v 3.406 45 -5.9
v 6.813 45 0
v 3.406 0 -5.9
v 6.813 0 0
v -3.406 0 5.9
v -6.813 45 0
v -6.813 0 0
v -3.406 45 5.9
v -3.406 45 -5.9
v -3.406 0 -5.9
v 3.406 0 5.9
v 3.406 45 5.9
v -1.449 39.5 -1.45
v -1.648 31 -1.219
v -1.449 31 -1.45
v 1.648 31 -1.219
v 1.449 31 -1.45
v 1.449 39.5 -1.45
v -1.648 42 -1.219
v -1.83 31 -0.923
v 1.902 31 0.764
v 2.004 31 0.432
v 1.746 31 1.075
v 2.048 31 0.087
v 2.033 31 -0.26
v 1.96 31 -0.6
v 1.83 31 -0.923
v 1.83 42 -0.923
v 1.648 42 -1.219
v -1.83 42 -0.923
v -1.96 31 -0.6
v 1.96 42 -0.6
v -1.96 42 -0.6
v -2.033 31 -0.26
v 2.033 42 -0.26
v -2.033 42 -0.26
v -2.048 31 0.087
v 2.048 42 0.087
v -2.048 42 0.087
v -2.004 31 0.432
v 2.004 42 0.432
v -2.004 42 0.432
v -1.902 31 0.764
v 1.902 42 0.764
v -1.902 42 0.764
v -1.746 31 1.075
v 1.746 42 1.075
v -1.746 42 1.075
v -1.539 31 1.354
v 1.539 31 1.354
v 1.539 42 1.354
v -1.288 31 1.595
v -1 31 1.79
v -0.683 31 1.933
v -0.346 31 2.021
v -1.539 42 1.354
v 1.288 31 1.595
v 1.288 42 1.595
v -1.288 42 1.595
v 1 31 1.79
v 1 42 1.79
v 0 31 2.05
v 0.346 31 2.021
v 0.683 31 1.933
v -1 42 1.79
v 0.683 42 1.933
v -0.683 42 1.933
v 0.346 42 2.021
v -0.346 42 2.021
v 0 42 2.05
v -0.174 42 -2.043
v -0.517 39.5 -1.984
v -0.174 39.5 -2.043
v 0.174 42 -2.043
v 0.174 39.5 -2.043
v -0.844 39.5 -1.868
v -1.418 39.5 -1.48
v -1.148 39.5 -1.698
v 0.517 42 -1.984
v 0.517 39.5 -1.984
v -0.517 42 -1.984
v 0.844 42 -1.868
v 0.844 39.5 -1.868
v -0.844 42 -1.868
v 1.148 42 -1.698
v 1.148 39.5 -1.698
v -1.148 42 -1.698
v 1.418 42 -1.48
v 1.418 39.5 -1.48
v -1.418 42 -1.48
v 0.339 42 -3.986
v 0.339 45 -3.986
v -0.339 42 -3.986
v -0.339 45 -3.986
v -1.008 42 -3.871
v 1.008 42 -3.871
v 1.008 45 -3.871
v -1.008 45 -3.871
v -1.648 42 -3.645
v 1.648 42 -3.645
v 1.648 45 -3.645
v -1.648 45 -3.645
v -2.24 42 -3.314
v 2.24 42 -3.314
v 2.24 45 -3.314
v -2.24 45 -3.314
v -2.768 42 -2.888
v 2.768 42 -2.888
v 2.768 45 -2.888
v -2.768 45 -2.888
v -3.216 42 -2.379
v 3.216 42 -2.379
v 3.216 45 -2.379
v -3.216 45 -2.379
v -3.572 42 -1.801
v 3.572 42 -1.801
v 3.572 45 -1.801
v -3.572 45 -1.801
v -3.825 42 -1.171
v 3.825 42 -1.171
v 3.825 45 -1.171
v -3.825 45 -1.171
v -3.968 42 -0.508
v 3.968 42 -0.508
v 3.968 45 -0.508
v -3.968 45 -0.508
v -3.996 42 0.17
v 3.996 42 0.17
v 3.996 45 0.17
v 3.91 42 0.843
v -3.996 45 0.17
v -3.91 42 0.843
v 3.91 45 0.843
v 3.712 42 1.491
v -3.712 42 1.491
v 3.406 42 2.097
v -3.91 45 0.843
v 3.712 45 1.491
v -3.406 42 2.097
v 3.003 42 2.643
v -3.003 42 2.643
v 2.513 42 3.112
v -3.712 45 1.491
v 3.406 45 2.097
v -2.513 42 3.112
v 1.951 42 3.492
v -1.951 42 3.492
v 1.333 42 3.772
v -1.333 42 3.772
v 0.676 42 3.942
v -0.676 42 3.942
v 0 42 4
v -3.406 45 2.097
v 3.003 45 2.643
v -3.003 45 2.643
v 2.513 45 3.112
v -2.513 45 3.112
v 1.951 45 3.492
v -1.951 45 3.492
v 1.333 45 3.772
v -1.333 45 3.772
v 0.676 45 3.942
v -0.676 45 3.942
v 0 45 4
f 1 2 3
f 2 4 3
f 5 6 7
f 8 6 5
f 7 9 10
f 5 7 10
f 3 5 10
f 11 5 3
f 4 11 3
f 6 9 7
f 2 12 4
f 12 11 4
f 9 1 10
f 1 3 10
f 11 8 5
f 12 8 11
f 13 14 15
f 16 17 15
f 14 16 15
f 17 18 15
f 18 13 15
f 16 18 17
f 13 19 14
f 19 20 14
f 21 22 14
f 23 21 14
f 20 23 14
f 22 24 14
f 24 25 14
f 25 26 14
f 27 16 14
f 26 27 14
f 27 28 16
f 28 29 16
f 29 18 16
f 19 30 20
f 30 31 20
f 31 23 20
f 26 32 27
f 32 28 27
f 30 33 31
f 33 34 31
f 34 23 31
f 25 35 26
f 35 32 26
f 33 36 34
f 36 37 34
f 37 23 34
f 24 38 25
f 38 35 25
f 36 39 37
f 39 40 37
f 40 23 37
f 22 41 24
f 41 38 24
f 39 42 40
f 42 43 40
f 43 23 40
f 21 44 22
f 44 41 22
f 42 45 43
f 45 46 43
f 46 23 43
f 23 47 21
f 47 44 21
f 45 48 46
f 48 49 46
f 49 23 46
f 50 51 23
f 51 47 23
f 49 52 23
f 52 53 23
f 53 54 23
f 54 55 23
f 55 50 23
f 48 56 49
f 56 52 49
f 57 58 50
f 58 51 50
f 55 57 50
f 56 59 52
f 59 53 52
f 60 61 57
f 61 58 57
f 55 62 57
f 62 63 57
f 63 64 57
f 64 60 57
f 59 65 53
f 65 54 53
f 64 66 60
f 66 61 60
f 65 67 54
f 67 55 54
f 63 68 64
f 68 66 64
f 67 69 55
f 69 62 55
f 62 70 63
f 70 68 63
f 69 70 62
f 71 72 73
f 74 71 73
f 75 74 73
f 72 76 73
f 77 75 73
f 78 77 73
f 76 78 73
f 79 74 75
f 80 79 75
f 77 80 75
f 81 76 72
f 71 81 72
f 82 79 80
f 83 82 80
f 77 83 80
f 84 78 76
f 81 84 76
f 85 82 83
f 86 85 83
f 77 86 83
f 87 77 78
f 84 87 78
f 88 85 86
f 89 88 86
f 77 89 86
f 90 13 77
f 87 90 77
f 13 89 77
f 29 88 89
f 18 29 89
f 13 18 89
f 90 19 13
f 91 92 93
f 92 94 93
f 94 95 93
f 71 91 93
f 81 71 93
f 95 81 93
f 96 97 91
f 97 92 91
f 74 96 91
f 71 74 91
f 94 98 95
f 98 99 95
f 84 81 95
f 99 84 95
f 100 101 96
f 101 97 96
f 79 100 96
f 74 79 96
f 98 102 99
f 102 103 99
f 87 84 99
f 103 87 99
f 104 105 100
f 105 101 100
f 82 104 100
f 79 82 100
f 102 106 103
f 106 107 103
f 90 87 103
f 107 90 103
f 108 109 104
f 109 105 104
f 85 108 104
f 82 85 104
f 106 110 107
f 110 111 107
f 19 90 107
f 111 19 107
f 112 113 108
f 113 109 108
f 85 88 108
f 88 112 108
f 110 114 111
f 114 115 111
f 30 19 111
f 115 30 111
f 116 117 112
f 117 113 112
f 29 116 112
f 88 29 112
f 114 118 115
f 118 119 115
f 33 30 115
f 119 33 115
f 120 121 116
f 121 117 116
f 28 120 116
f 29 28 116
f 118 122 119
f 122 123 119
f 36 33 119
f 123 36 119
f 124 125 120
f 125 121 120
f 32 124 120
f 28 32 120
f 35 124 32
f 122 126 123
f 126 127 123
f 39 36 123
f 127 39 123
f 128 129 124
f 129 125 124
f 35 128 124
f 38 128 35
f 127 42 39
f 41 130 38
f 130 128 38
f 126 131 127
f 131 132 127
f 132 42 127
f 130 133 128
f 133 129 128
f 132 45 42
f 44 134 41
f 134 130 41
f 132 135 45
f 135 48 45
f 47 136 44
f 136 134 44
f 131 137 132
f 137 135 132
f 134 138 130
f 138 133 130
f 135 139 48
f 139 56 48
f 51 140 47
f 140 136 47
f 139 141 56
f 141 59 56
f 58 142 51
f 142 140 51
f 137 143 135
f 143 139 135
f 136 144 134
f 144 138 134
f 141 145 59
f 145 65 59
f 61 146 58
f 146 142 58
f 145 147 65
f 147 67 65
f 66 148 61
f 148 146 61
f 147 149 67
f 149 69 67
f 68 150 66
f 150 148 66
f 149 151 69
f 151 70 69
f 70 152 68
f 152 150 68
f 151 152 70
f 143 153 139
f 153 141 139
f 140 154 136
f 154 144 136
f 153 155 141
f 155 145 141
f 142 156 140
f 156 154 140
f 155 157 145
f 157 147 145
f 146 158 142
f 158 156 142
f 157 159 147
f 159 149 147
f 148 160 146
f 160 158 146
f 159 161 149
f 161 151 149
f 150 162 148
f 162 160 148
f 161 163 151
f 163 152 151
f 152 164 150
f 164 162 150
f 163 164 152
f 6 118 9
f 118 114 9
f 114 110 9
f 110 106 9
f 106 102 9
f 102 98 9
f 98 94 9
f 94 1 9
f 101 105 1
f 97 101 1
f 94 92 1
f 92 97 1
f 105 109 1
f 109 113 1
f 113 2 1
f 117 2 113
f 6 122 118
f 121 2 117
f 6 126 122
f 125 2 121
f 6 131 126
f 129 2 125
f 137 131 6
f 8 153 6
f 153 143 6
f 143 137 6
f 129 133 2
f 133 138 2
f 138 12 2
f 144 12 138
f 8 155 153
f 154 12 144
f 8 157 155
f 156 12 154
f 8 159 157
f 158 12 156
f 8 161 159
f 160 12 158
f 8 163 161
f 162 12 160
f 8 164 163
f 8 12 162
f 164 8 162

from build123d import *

# Parameters (mm, degrees)
SALIENTE_EXTRUIR1_DEPTH = 45
CROQUIS2_R              = 4
CORTAR_EXTRUIR1_DEPTH   = 3
CROQUIS3_R              = 2.05
CORTAR_EXTRUIR2_DEPTH   = 11
SALIENTE_EXTRUIR2_DEPTH = 11


with BuildPart() as part:
    # Croquis1 → Saliente-Extruir1 (new body)
    with BuildSketch(Plane(origin=(0, 0, 0), x_dir=(1, 0, 0), z_dir=(0, 1, 0))):
        Polygon((6.812733176, 0), (3.406366588, 5.9), (-3.406366588, 5.9), (-6.812733176, 0), (-3.406366588, -5.9), (3.406366588, -5.9), align=None)
    extrude(amount=SALIENTE_EXTRUIR1_DEPTH)

    # Croquis2 → Cortar-Extruir1 (cut)
    with BuildSketch(Plane(origin=(0, 45, 0), x_dir=(1, 0, 0), z_dir=(0, 1, 0))):
        with Locations(Location((0, 0, 0), (0, 0, 270))):
            Circle(CROQUIS2_R)
    extrude(amount=-CORTAR_EXTRUIR1_DEPTH, mode=Mode.SUBTRACT)

    # Croquis3 → Cortar-Extruir2 (cut)
    with BuildSketch(Plane(origin=(0, 42, 0), x_dir=(1, 0, 0), z_dir=(0, 1, 0))):
        with Locations(Location((0, 0, 0), (0, 0, 270))):
            Circle(CROQUIS3_R)
    extrude(amount=-CORTAR_EXTRUIR2_DEPTH, mode=Mode.SUBTRACT)

    # Croquis4 → Saliente-Extruir2 (add)
    with BuildSketch(Plane(origin=(0, 39.5, 0), x_dir=(1, 0, 0), z_dir=(0, 1, 0))):
        with BuildLine():
            Line((-1.449137675, 1.45), (1.449137675, 1.45))
            ThreePointArc((1.449137675, 1.45), (0, 2.05), (-1.449137675, 1.45))
        make_face()
    extrude(amount=-SALIENTE_EXTRUIR2_DEPTH)


solid = part.part
